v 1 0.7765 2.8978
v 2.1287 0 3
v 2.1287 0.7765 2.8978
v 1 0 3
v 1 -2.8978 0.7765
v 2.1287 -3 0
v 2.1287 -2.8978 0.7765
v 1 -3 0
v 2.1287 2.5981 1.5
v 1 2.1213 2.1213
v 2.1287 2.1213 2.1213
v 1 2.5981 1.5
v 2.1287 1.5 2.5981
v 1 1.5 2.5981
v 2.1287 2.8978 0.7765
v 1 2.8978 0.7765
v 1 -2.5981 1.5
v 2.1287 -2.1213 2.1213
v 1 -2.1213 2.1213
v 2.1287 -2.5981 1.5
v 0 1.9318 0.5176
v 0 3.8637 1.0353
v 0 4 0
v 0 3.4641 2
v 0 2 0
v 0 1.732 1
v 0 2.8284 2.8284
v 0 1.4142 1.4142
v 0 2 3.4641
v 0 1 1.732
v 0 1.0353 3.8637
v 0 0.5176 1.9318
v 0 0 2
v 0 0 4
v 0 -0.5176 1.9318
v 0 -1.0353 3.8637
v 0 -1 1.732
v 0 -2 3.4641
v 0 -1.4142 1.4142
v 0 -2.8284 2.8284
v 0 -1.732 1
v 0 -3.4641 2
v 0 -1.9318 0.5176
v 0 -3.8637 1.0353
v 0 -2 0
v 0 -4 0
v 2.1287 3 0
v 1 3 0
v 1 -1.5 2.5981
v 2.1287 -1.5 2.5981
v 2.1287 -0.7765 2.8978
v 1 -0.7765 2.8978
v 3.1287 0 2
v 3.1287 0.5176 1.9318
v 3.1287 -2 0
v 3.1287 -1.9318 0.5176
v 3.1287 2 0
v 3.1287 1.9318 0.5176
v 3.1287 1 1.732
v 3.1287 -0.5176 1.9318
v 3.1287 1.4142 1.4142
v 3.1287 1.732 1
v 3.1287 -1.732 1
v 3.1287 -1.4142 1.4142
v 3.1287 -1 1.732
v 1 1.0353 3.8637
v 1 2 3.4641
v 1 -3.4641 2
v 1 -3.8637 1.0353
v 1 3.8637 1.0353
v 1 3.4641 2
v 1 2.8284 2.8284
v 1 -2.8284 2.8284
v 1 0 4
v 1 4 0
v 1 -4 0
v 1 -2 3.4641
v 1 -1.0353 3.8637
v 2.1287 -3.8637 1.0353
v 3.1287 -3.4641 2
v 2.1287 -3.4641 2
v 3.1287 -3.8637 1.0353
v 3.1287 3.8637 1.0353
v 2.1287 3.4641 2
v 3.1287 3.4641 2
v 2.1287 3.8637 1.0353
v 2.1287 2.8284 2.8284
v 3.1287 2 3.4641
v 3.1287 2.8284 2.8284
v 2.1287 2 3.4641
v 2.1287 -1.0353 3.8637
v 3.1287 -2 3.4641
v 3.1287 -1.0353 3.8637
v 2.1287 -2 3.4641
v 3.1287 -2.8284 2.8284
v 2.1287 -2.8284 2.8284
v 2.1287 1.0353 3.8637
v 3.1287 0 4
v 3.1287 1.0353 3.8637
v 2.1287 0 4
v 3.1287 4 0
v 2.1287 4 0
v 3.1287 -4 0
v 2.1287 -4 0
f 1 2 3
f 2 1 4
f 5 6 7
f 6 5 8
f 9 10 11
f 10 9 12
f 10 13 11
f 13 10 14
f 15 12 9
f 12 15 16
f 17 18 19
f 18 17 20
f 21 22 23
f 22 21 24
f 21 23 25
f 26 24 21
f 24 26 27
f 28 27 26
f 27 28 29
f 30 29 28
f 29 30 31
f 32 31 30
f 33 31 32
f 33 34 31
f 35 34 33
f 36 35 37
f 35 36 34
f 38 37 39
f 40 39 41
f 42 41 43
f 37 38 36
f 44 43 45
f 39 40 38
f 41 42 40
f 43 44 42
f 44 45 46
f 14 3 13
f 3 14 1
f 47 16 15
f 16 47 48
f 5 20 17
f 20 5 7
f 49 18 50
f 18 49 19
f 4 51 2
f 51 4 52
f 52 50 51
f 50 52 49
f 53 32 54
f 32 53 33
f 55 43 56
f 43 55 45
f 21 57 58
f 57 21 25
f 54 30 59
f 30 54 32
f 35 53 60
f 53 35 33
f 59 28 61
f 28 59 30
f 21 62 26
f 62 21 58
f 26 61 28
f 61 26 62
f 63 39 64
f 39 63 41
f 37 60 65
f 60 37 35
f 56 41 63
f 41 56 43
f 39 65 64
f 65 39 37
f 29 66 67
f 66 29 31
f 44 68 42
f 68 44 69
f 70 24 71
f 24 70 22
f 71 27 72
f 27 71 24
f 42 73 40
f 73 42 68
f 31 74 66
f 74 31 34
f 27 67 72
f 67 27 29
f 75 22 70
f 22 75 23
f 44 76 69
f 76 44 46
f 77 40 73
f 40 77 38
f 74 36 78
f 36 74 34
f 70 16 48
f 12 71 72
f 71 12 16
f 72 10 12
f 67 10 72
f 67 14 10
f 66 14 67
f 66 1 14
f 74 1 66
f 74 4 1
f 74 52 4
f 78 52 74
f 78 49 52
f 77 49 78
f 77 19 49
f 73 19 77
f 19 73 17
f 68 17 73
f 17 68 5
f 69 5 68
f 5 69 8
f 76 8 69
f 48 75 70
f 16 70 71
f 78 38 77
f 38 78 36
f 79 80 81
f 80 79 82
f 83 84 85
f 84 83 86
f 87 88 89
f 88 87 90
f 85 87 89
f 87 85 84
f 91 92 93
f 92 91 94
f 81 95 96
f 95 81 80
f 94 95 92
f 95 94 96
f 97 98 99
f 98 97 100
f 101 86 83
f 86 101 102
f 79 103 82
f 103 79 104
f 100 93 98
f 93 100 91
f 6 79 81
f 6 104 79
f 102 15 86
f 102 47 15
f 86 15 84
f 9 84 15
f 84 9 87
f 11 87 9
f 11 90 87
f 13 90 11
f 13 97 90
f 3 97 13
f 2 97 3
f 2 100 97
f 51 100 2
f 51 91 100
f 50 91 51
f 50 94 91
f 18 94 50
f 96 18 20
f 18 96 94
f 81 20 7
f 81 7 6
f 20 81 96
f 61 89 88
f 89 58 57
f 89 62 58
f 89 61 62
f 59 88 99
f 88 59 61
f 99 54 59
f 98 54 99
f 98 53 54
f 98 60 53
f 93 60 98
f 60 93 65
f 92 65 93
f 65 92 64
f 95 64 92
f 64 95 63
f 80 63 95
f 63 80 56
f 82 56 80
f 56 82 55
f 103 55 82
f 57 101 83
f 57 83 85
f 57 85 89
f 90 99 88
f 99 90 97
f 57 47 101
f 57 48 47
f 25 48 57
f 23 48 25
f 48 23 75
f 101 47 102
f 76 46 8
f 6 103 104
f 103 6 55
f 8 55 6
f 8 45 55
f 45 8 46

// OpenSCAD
// file: ../build_environments.scad
// build_environments.scad: modules to build level sections
//

module pool(diameter=10.0, wall_height=2.0, step_width=3.0, connections=[])
{
    difference() {
        union() {
        difference() {
            cylinder(h=0.5,r1=diameter+step_width,r2=diameter+step_width,$fn=48);
            translate([0,0,-0.1])
                cylinder(h=0.7,r1=diameter,r2=diameter,$fn=48);
        }
        difference() {
            cylinder(h=wall_height,r1=diameter+step_width+1.0,r2=diameter+step_width+1.0,$fn=48);
            translate([0,0,-0.1])
                cylinder(h=wall_height+0.2,r1=diameter+step_width,r2=diameter+step_width,$fn=48);
        }
        }
    
        for (c = connections)
        {
            rotate([0,90,0]) {
                angle = atan2(c[1],c[0]);
                rotate([-angle,0,0]) {
                    cylinder(h=diameter+5.0,r1=c[2],r2=c[2],$fn=48);
                }
            }
        }
    }
}

module straight(length=10.0, width=2.0, dy1=0.0, dy2=0.0, dz=0.0)
{
    dims = [0, 0, 0, 0, 0, (dz/length)];
    matrix = [
        [ 1, dims[0], dims[1], 0 ],
        [ dims[2], 1, dims[4], 0 ],
        [ dims[5], dims[3], 1, 0 ],
        [ 0, 0, 0, 1 ]
    ];
    multmatrix(matrix)
    difference() {
        translate([dy1,0,0])
        union() {
            rotate([0,90,0]) {
                difference() {
                    cylinder(h=(length-dy1-dy2),r1=width+1.0,r2=width+1.0,$fn=24);
                    translate([0,0,-0.1])
                        cylinder(h=(length-dy1-dy2+0.2),r1=width,r2=width,$fn=24);
                }
                difference() {
                    cylinder(h=1.0,r1=width+2.0,r2=width+2.0,$fn=24);
                    translate([0,0,-0.1])
                        cylinder(h=1.2,r1=width,r2=width,$fn=24);
                }
                translate([0,0,(length-dy1-dy2)-1.0]) {
                    difference() {
                        cylinder(h=1.0,r1=width+2.0,r2=width+2.0,$fn=24);
                        translate([0,0,-0.1])
                            cylinder(h=1.2,r1=width,r2=width,$fn=24);
                    }
                }
            }
        }
        translate([0,0,-(2*width+4.0)/2])
            cube([3*length,3*length,2*width+4.0],center=true);
    }
}

module curve(p0=[0,0], center=[0,0], dir=1, angle=0.0, width=2.0)
{
    radius = sqrt((p0[0]-center[0])*(p0[0]-center[0]) + (p0[1]-center[1])*(p0[1]-center[1]));
    if (dir == 0) {
        difference() {
            rotate([0,0,-90])
            difference() {
                rotate_extrude(angle = angle, convexity = 10, $fn=32)
                    translate([radius, 0, 0])
                        circle(r = width+1.0,$fn=24);
                rotate([0,0,-1.0])
                    rotate_extrude(angle = angle+2.0, convexity = 10, $fn=32)
                        translate([radius, 0, 0])
                            circle(r = width,$fn=24);
            }
            translate([0,0,-(2*width+4.0)/2])
                cube([5*radius,5*radius,2*width+4.0],center=true);
        }
    }
    else {
        difference() {
            rotate([0,0,90])
            difference() {
                rotate_extrude(angle = -angle, convexity = 10, $fn=32)
                    translate([radius, 0, 0])
                        circle(r = width+1.0,$fn=24);
                rotate([0,0,1.0])
                    rotate_extrude(angle = -angle-2.0, convexity = 10, $fn=32)
                        translate([radius, 0, 0])
                            circle(r = width,$fn=24);
            }
            translate([0,0,-(2*width+4.0)/2])
                cube([5*radius,5*radius,2*width+4.0],center=true);
        }
    }

}

// test pool
//pool(diameter=12.0000, wall_height=3.0000, step_width=3.0000, connections=[[0.0000,-26.0000,2.0000], [23.6074,0.0000,2.0000]]);

// test straight, slope
//straight(length=26.0000, width=2.0000, dy1=11.8322, dy2=6.7082, dz=0.0000);
//straight(length=29.1549, width=12.0000, dy1=0.0000, dy2=0.0000, dz=-15.0000);

// test curve
//curve(p0=[23.6074, 0.0000], center=[23.6074, 5.0000], dir=0, angle=60.1011, width=2.0000);
//curve(p0=[33.6426, 12.4219], center=[37.9771, 9.9295], dir=1, angle=120.4627, width=2.0000);
// main file
use <../build_environments.scad>;
straight(length=8.7856, width=2.0000, dy1=0.0000, dy2=5.6569, dz=0.0000);
